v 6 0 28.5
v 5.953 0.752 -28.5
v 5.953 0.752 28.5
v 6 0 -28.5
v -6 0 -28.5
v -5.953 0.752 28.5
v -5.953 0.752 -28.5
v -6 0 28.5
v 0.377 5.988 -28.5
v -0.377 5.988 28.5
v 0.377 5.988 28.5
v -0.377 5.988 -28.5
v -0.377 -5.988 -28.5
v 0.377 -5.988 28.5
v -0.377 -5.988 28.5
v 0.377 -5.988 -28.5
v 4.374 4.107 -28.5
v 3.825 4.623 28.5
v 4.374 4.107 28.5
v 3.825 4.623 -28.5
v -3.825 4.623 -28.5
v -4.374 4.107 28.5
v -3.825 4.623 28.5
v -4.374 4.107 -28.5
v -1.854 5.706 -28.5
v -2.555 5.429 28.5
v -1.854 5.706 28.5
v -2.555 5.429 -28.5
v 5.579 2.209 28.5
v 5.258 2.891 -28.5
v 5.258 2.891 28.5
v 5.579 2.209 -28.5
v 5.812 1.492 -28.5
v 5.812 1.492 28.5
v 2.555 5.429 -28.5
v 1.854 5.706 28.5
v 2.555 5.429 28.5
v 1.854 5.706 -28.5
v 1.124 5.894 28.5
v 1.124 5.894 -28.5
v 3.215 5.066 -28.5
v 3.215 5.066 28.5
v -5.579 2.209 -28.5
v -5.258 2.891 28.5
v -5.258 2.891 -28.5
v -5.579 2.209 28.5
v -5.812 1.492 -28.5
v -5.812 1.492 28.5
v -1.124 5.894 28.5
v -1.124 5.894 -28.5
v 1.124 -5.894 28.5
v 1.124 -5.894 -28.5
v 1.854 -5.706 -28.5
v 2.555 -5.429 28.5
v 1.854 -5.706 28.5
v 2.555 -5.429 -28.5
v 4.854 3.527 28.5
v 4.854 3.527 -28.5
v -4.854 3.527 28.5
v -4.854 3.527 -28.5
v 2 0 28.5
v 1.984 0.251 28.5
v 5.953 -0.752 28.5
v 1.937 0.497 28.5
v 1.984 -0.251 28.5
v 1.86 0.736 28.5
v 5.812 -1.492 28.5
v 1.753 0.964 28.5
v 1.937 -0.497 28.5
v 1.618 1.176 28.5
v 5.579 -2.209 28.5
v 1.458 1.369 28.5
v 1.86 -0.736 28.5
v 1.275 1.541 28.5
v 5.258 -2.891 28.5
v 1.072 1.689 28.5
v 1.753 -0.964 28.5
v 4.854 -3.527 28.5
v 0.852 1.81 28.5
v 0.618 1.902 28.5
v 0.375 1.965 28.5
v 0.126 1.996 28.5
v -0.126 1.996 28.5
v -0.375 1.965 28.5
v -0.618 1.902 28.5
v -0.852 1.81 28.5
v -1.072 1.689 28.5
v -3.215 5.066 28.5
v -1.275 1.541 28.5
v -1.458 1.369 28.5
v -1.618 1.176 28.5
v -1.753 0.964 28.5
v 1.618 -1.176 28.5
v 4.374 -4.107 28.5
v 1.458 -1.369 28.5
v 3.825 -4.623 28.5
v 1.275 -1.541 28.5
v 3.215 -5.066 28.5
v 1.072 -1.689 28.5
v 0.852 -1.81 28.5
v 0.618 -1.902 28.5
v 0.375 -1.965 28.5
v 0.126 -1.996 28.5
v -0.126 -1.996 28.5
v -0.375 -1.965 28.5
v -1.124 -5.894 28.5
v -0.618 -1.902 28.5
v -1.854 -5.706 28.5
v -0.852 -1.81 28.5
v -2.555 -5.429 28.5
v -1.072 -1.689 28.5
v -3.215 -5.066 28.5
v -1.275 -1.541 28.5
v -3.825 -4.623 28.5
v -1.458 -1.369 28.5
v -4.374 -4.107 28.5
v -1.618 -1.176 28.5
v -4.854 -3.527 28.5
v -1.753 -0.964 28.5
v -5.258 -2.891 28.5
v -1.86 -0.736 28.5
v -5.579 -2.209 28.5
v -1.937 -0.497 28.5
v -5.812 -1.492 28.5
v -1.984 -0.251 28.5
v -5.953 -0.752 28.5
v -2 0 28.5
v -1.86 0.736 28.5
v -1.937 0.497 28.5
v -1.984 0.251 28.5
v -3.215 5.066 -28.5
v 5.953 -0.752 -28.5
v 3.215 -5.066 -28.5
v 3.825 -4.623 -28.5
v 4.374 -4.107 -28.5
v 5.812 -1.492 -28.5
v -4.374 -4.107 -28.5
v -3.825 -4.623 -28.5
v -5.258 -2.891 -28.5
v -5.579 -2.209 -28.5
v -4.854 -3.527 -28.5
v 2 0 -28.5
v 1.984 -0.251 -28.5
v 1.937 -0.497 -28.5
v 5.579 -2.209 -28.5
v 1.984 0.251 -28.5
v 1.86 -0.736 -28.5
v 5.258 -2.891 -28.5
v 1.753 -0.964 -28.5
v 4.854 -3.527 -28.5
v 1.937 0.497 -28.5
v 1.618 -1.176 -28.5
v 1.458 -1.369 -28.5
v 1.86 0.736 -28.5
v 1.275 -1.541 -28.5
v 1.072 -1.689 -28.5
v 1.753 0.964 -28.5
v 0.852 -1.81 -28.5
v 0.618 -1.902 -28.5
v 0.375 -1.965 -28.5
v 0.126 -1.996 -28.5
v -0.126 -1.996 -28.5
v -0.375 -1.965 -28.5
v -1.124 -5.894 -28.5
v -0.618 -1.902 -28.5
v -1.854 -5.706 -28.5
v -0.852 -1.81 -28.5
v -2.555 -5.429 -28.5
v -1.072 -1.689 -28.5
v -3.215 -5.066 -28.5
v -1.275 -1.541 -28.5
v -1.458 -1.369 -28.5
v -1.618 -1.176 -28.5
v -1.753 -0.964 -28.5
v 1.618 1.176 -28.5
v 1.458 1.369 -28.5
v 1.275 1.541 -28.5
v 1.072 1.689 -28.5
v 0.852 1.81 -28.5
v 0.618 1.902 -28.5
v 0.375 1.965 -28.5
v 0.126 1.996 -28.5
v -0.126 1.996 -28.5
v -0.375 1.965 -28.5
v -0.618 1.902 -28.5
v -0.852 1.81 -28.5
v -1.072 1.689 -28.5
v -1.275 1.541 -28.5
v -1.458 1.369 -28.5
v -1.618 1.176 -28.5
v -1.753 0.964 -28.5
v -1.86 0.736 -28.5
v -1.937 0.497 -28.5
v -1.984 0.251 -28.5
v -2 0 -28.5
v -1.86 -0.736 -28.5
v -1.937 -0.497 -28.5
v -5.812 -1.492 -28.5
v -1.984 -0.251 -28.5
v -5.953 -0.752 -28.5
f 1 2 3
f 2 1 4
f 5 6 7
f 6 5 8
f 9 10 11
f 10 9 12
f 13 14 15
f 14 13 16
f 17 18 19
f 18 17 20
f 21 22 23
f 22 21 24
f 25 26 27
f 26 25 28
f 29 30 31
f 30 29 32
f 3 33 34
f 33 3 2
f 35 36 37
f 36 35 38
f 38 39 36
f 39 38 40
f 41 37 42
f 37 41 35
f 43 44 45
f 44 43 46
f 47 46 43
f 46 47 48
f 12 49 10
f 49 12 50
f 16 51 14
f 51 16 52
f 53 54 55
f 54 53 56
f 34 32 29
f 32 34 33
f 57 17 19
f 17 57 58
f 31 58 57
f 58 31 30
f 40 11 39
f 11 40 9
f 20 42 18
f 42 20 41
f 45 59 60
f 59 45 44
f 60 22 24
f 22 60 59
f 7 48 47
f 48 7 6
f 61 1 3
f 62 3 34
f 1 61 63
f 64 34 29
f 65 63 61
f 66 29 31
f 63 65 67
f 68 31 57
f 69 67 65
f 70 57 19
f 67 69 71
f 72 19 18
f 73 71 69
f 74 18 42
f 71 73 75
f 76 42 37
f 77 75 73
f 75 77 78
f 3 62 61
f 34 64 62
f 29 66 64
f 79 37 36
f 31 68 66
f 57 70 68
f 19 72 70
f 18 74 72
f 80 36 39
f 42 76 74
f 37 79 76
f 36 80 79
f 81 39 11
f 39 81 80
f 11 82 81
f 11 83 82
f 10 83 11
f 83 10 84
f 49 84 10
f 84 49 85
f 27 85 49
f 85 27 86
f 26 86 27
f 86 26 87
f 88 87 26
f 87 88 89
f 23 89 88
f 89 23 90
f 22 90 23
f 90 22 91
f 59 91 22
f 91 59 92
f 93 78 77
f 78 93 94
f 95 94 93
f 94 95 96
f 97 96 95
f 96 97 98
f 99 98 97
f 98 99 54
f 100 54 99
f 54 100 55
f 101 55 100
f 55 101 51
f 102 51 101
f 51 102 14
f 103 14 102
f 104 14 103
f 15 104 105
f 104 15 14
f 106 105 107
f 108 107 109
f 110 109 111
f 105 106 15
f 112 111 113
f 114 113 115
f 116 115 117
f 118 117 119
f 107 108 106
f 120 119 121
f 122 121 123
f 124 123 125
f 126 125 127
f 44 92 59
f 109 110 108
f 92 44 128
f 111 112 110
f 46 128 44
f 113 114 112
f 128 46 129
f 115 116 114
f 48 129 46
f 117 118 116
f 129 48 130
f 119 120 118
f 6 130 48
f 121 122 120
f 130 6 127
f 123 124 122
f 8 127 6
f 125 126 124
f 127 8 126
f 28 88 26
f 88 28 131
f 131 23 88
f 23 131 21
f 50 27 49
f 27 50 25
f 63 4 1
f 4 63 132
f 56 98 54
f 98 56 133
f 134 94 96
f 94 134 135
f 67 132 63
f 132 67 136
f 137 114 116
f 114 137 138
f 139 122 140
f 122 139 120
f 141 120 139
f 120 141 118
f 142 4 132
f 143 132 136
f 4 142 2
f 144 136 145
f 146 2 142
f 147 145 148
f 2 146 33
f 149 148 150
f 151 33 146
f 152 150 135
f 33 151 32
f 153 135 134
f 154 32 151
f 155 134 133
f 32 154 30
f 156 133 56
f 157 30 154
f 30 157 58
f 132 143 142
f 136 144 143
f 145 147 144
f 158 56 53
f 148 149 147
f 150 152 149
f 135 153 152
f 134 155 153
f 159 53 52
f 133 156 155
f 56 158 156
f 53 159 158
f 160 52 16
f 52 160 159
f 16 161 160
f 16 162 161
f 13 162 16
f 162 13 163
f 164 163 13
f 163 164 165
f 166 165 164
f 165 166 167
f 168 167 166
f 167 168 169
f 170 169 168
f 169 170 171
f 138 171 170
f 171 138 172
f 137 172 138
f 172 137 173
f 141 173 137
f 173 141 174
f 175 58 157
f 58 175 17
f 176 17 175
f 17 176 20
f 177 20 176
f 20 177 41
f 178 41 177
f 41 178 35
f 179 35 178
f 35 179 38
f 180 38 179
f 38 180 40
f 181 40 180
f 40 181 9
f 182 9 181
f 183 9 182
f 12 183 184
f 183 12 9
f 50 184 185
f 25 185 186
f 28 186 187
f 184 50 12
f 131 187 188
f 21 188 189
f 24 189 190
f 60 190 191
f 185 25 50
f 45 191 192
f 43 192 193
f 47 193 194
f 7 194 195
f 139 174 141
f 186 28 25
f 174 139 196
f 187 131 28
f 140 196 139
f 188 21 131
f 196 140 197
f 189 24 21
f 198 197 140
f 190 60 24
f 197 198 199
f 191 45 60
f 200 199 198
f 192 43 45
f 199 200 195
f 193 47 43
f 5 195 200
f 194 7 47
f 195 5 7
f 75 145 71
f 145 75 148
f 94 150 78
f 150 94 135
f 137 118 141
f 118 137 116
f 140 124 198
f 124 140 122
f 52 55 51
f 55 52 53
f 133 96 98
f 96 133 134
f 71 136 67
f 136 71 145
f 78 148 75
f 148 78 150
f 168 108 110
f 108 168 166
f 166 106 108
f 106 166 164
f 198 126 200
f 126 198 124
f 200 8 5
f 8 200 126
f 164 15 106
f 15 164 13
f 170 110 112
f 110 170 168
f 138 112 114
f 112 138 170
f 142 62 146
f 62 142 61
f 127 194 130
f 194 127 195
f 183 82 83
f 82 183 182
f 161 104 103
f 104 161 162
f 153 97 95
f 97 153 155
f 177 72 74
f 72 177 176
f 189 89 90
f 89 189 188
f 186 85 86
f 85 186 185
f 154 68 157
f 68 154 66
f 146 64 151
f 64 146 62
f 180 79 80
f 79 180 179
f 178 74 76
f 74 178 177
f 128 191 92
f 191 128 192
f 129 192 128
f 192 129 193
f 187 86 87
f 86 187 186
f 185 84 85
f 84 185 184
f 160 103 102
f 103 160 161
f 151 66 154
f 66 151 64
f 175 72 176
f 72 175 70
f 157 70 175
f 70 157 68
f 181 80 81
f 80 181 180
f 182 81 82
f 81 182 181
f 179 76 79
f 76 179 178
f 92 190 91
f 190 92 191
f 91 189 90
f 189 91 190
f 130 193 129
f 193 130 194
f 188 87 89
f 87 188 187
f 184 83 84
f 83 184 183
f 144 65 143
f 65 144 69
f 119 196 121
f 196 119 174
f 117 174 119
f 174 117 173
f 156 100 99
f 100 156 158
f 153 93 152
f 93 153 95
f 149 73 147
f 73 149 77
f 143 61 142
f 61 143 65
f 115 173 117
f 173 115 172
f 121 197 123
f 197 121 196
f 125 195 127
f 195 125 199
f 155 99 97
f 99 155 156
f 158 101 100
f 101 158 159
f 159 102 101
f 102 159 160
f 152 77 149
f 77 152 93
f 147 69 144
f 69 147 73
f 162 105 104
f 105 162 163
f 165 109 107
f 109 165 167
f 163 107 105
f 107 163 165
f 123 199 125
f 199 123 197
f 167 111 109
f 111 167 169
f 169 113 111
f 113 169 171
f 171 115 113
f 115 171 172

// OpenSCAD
$fn = 50;


difference() {
	union() {
		translate(v = [0, 0, -28.5000000000]) {
			cylinder(h = 57, r = 6.0000000000);
		}
	}
	union() {
		translate(v = [0, 0, -100.0000000000]) {
			cylinder(h = 200, r = 2);
		}
	}
}
